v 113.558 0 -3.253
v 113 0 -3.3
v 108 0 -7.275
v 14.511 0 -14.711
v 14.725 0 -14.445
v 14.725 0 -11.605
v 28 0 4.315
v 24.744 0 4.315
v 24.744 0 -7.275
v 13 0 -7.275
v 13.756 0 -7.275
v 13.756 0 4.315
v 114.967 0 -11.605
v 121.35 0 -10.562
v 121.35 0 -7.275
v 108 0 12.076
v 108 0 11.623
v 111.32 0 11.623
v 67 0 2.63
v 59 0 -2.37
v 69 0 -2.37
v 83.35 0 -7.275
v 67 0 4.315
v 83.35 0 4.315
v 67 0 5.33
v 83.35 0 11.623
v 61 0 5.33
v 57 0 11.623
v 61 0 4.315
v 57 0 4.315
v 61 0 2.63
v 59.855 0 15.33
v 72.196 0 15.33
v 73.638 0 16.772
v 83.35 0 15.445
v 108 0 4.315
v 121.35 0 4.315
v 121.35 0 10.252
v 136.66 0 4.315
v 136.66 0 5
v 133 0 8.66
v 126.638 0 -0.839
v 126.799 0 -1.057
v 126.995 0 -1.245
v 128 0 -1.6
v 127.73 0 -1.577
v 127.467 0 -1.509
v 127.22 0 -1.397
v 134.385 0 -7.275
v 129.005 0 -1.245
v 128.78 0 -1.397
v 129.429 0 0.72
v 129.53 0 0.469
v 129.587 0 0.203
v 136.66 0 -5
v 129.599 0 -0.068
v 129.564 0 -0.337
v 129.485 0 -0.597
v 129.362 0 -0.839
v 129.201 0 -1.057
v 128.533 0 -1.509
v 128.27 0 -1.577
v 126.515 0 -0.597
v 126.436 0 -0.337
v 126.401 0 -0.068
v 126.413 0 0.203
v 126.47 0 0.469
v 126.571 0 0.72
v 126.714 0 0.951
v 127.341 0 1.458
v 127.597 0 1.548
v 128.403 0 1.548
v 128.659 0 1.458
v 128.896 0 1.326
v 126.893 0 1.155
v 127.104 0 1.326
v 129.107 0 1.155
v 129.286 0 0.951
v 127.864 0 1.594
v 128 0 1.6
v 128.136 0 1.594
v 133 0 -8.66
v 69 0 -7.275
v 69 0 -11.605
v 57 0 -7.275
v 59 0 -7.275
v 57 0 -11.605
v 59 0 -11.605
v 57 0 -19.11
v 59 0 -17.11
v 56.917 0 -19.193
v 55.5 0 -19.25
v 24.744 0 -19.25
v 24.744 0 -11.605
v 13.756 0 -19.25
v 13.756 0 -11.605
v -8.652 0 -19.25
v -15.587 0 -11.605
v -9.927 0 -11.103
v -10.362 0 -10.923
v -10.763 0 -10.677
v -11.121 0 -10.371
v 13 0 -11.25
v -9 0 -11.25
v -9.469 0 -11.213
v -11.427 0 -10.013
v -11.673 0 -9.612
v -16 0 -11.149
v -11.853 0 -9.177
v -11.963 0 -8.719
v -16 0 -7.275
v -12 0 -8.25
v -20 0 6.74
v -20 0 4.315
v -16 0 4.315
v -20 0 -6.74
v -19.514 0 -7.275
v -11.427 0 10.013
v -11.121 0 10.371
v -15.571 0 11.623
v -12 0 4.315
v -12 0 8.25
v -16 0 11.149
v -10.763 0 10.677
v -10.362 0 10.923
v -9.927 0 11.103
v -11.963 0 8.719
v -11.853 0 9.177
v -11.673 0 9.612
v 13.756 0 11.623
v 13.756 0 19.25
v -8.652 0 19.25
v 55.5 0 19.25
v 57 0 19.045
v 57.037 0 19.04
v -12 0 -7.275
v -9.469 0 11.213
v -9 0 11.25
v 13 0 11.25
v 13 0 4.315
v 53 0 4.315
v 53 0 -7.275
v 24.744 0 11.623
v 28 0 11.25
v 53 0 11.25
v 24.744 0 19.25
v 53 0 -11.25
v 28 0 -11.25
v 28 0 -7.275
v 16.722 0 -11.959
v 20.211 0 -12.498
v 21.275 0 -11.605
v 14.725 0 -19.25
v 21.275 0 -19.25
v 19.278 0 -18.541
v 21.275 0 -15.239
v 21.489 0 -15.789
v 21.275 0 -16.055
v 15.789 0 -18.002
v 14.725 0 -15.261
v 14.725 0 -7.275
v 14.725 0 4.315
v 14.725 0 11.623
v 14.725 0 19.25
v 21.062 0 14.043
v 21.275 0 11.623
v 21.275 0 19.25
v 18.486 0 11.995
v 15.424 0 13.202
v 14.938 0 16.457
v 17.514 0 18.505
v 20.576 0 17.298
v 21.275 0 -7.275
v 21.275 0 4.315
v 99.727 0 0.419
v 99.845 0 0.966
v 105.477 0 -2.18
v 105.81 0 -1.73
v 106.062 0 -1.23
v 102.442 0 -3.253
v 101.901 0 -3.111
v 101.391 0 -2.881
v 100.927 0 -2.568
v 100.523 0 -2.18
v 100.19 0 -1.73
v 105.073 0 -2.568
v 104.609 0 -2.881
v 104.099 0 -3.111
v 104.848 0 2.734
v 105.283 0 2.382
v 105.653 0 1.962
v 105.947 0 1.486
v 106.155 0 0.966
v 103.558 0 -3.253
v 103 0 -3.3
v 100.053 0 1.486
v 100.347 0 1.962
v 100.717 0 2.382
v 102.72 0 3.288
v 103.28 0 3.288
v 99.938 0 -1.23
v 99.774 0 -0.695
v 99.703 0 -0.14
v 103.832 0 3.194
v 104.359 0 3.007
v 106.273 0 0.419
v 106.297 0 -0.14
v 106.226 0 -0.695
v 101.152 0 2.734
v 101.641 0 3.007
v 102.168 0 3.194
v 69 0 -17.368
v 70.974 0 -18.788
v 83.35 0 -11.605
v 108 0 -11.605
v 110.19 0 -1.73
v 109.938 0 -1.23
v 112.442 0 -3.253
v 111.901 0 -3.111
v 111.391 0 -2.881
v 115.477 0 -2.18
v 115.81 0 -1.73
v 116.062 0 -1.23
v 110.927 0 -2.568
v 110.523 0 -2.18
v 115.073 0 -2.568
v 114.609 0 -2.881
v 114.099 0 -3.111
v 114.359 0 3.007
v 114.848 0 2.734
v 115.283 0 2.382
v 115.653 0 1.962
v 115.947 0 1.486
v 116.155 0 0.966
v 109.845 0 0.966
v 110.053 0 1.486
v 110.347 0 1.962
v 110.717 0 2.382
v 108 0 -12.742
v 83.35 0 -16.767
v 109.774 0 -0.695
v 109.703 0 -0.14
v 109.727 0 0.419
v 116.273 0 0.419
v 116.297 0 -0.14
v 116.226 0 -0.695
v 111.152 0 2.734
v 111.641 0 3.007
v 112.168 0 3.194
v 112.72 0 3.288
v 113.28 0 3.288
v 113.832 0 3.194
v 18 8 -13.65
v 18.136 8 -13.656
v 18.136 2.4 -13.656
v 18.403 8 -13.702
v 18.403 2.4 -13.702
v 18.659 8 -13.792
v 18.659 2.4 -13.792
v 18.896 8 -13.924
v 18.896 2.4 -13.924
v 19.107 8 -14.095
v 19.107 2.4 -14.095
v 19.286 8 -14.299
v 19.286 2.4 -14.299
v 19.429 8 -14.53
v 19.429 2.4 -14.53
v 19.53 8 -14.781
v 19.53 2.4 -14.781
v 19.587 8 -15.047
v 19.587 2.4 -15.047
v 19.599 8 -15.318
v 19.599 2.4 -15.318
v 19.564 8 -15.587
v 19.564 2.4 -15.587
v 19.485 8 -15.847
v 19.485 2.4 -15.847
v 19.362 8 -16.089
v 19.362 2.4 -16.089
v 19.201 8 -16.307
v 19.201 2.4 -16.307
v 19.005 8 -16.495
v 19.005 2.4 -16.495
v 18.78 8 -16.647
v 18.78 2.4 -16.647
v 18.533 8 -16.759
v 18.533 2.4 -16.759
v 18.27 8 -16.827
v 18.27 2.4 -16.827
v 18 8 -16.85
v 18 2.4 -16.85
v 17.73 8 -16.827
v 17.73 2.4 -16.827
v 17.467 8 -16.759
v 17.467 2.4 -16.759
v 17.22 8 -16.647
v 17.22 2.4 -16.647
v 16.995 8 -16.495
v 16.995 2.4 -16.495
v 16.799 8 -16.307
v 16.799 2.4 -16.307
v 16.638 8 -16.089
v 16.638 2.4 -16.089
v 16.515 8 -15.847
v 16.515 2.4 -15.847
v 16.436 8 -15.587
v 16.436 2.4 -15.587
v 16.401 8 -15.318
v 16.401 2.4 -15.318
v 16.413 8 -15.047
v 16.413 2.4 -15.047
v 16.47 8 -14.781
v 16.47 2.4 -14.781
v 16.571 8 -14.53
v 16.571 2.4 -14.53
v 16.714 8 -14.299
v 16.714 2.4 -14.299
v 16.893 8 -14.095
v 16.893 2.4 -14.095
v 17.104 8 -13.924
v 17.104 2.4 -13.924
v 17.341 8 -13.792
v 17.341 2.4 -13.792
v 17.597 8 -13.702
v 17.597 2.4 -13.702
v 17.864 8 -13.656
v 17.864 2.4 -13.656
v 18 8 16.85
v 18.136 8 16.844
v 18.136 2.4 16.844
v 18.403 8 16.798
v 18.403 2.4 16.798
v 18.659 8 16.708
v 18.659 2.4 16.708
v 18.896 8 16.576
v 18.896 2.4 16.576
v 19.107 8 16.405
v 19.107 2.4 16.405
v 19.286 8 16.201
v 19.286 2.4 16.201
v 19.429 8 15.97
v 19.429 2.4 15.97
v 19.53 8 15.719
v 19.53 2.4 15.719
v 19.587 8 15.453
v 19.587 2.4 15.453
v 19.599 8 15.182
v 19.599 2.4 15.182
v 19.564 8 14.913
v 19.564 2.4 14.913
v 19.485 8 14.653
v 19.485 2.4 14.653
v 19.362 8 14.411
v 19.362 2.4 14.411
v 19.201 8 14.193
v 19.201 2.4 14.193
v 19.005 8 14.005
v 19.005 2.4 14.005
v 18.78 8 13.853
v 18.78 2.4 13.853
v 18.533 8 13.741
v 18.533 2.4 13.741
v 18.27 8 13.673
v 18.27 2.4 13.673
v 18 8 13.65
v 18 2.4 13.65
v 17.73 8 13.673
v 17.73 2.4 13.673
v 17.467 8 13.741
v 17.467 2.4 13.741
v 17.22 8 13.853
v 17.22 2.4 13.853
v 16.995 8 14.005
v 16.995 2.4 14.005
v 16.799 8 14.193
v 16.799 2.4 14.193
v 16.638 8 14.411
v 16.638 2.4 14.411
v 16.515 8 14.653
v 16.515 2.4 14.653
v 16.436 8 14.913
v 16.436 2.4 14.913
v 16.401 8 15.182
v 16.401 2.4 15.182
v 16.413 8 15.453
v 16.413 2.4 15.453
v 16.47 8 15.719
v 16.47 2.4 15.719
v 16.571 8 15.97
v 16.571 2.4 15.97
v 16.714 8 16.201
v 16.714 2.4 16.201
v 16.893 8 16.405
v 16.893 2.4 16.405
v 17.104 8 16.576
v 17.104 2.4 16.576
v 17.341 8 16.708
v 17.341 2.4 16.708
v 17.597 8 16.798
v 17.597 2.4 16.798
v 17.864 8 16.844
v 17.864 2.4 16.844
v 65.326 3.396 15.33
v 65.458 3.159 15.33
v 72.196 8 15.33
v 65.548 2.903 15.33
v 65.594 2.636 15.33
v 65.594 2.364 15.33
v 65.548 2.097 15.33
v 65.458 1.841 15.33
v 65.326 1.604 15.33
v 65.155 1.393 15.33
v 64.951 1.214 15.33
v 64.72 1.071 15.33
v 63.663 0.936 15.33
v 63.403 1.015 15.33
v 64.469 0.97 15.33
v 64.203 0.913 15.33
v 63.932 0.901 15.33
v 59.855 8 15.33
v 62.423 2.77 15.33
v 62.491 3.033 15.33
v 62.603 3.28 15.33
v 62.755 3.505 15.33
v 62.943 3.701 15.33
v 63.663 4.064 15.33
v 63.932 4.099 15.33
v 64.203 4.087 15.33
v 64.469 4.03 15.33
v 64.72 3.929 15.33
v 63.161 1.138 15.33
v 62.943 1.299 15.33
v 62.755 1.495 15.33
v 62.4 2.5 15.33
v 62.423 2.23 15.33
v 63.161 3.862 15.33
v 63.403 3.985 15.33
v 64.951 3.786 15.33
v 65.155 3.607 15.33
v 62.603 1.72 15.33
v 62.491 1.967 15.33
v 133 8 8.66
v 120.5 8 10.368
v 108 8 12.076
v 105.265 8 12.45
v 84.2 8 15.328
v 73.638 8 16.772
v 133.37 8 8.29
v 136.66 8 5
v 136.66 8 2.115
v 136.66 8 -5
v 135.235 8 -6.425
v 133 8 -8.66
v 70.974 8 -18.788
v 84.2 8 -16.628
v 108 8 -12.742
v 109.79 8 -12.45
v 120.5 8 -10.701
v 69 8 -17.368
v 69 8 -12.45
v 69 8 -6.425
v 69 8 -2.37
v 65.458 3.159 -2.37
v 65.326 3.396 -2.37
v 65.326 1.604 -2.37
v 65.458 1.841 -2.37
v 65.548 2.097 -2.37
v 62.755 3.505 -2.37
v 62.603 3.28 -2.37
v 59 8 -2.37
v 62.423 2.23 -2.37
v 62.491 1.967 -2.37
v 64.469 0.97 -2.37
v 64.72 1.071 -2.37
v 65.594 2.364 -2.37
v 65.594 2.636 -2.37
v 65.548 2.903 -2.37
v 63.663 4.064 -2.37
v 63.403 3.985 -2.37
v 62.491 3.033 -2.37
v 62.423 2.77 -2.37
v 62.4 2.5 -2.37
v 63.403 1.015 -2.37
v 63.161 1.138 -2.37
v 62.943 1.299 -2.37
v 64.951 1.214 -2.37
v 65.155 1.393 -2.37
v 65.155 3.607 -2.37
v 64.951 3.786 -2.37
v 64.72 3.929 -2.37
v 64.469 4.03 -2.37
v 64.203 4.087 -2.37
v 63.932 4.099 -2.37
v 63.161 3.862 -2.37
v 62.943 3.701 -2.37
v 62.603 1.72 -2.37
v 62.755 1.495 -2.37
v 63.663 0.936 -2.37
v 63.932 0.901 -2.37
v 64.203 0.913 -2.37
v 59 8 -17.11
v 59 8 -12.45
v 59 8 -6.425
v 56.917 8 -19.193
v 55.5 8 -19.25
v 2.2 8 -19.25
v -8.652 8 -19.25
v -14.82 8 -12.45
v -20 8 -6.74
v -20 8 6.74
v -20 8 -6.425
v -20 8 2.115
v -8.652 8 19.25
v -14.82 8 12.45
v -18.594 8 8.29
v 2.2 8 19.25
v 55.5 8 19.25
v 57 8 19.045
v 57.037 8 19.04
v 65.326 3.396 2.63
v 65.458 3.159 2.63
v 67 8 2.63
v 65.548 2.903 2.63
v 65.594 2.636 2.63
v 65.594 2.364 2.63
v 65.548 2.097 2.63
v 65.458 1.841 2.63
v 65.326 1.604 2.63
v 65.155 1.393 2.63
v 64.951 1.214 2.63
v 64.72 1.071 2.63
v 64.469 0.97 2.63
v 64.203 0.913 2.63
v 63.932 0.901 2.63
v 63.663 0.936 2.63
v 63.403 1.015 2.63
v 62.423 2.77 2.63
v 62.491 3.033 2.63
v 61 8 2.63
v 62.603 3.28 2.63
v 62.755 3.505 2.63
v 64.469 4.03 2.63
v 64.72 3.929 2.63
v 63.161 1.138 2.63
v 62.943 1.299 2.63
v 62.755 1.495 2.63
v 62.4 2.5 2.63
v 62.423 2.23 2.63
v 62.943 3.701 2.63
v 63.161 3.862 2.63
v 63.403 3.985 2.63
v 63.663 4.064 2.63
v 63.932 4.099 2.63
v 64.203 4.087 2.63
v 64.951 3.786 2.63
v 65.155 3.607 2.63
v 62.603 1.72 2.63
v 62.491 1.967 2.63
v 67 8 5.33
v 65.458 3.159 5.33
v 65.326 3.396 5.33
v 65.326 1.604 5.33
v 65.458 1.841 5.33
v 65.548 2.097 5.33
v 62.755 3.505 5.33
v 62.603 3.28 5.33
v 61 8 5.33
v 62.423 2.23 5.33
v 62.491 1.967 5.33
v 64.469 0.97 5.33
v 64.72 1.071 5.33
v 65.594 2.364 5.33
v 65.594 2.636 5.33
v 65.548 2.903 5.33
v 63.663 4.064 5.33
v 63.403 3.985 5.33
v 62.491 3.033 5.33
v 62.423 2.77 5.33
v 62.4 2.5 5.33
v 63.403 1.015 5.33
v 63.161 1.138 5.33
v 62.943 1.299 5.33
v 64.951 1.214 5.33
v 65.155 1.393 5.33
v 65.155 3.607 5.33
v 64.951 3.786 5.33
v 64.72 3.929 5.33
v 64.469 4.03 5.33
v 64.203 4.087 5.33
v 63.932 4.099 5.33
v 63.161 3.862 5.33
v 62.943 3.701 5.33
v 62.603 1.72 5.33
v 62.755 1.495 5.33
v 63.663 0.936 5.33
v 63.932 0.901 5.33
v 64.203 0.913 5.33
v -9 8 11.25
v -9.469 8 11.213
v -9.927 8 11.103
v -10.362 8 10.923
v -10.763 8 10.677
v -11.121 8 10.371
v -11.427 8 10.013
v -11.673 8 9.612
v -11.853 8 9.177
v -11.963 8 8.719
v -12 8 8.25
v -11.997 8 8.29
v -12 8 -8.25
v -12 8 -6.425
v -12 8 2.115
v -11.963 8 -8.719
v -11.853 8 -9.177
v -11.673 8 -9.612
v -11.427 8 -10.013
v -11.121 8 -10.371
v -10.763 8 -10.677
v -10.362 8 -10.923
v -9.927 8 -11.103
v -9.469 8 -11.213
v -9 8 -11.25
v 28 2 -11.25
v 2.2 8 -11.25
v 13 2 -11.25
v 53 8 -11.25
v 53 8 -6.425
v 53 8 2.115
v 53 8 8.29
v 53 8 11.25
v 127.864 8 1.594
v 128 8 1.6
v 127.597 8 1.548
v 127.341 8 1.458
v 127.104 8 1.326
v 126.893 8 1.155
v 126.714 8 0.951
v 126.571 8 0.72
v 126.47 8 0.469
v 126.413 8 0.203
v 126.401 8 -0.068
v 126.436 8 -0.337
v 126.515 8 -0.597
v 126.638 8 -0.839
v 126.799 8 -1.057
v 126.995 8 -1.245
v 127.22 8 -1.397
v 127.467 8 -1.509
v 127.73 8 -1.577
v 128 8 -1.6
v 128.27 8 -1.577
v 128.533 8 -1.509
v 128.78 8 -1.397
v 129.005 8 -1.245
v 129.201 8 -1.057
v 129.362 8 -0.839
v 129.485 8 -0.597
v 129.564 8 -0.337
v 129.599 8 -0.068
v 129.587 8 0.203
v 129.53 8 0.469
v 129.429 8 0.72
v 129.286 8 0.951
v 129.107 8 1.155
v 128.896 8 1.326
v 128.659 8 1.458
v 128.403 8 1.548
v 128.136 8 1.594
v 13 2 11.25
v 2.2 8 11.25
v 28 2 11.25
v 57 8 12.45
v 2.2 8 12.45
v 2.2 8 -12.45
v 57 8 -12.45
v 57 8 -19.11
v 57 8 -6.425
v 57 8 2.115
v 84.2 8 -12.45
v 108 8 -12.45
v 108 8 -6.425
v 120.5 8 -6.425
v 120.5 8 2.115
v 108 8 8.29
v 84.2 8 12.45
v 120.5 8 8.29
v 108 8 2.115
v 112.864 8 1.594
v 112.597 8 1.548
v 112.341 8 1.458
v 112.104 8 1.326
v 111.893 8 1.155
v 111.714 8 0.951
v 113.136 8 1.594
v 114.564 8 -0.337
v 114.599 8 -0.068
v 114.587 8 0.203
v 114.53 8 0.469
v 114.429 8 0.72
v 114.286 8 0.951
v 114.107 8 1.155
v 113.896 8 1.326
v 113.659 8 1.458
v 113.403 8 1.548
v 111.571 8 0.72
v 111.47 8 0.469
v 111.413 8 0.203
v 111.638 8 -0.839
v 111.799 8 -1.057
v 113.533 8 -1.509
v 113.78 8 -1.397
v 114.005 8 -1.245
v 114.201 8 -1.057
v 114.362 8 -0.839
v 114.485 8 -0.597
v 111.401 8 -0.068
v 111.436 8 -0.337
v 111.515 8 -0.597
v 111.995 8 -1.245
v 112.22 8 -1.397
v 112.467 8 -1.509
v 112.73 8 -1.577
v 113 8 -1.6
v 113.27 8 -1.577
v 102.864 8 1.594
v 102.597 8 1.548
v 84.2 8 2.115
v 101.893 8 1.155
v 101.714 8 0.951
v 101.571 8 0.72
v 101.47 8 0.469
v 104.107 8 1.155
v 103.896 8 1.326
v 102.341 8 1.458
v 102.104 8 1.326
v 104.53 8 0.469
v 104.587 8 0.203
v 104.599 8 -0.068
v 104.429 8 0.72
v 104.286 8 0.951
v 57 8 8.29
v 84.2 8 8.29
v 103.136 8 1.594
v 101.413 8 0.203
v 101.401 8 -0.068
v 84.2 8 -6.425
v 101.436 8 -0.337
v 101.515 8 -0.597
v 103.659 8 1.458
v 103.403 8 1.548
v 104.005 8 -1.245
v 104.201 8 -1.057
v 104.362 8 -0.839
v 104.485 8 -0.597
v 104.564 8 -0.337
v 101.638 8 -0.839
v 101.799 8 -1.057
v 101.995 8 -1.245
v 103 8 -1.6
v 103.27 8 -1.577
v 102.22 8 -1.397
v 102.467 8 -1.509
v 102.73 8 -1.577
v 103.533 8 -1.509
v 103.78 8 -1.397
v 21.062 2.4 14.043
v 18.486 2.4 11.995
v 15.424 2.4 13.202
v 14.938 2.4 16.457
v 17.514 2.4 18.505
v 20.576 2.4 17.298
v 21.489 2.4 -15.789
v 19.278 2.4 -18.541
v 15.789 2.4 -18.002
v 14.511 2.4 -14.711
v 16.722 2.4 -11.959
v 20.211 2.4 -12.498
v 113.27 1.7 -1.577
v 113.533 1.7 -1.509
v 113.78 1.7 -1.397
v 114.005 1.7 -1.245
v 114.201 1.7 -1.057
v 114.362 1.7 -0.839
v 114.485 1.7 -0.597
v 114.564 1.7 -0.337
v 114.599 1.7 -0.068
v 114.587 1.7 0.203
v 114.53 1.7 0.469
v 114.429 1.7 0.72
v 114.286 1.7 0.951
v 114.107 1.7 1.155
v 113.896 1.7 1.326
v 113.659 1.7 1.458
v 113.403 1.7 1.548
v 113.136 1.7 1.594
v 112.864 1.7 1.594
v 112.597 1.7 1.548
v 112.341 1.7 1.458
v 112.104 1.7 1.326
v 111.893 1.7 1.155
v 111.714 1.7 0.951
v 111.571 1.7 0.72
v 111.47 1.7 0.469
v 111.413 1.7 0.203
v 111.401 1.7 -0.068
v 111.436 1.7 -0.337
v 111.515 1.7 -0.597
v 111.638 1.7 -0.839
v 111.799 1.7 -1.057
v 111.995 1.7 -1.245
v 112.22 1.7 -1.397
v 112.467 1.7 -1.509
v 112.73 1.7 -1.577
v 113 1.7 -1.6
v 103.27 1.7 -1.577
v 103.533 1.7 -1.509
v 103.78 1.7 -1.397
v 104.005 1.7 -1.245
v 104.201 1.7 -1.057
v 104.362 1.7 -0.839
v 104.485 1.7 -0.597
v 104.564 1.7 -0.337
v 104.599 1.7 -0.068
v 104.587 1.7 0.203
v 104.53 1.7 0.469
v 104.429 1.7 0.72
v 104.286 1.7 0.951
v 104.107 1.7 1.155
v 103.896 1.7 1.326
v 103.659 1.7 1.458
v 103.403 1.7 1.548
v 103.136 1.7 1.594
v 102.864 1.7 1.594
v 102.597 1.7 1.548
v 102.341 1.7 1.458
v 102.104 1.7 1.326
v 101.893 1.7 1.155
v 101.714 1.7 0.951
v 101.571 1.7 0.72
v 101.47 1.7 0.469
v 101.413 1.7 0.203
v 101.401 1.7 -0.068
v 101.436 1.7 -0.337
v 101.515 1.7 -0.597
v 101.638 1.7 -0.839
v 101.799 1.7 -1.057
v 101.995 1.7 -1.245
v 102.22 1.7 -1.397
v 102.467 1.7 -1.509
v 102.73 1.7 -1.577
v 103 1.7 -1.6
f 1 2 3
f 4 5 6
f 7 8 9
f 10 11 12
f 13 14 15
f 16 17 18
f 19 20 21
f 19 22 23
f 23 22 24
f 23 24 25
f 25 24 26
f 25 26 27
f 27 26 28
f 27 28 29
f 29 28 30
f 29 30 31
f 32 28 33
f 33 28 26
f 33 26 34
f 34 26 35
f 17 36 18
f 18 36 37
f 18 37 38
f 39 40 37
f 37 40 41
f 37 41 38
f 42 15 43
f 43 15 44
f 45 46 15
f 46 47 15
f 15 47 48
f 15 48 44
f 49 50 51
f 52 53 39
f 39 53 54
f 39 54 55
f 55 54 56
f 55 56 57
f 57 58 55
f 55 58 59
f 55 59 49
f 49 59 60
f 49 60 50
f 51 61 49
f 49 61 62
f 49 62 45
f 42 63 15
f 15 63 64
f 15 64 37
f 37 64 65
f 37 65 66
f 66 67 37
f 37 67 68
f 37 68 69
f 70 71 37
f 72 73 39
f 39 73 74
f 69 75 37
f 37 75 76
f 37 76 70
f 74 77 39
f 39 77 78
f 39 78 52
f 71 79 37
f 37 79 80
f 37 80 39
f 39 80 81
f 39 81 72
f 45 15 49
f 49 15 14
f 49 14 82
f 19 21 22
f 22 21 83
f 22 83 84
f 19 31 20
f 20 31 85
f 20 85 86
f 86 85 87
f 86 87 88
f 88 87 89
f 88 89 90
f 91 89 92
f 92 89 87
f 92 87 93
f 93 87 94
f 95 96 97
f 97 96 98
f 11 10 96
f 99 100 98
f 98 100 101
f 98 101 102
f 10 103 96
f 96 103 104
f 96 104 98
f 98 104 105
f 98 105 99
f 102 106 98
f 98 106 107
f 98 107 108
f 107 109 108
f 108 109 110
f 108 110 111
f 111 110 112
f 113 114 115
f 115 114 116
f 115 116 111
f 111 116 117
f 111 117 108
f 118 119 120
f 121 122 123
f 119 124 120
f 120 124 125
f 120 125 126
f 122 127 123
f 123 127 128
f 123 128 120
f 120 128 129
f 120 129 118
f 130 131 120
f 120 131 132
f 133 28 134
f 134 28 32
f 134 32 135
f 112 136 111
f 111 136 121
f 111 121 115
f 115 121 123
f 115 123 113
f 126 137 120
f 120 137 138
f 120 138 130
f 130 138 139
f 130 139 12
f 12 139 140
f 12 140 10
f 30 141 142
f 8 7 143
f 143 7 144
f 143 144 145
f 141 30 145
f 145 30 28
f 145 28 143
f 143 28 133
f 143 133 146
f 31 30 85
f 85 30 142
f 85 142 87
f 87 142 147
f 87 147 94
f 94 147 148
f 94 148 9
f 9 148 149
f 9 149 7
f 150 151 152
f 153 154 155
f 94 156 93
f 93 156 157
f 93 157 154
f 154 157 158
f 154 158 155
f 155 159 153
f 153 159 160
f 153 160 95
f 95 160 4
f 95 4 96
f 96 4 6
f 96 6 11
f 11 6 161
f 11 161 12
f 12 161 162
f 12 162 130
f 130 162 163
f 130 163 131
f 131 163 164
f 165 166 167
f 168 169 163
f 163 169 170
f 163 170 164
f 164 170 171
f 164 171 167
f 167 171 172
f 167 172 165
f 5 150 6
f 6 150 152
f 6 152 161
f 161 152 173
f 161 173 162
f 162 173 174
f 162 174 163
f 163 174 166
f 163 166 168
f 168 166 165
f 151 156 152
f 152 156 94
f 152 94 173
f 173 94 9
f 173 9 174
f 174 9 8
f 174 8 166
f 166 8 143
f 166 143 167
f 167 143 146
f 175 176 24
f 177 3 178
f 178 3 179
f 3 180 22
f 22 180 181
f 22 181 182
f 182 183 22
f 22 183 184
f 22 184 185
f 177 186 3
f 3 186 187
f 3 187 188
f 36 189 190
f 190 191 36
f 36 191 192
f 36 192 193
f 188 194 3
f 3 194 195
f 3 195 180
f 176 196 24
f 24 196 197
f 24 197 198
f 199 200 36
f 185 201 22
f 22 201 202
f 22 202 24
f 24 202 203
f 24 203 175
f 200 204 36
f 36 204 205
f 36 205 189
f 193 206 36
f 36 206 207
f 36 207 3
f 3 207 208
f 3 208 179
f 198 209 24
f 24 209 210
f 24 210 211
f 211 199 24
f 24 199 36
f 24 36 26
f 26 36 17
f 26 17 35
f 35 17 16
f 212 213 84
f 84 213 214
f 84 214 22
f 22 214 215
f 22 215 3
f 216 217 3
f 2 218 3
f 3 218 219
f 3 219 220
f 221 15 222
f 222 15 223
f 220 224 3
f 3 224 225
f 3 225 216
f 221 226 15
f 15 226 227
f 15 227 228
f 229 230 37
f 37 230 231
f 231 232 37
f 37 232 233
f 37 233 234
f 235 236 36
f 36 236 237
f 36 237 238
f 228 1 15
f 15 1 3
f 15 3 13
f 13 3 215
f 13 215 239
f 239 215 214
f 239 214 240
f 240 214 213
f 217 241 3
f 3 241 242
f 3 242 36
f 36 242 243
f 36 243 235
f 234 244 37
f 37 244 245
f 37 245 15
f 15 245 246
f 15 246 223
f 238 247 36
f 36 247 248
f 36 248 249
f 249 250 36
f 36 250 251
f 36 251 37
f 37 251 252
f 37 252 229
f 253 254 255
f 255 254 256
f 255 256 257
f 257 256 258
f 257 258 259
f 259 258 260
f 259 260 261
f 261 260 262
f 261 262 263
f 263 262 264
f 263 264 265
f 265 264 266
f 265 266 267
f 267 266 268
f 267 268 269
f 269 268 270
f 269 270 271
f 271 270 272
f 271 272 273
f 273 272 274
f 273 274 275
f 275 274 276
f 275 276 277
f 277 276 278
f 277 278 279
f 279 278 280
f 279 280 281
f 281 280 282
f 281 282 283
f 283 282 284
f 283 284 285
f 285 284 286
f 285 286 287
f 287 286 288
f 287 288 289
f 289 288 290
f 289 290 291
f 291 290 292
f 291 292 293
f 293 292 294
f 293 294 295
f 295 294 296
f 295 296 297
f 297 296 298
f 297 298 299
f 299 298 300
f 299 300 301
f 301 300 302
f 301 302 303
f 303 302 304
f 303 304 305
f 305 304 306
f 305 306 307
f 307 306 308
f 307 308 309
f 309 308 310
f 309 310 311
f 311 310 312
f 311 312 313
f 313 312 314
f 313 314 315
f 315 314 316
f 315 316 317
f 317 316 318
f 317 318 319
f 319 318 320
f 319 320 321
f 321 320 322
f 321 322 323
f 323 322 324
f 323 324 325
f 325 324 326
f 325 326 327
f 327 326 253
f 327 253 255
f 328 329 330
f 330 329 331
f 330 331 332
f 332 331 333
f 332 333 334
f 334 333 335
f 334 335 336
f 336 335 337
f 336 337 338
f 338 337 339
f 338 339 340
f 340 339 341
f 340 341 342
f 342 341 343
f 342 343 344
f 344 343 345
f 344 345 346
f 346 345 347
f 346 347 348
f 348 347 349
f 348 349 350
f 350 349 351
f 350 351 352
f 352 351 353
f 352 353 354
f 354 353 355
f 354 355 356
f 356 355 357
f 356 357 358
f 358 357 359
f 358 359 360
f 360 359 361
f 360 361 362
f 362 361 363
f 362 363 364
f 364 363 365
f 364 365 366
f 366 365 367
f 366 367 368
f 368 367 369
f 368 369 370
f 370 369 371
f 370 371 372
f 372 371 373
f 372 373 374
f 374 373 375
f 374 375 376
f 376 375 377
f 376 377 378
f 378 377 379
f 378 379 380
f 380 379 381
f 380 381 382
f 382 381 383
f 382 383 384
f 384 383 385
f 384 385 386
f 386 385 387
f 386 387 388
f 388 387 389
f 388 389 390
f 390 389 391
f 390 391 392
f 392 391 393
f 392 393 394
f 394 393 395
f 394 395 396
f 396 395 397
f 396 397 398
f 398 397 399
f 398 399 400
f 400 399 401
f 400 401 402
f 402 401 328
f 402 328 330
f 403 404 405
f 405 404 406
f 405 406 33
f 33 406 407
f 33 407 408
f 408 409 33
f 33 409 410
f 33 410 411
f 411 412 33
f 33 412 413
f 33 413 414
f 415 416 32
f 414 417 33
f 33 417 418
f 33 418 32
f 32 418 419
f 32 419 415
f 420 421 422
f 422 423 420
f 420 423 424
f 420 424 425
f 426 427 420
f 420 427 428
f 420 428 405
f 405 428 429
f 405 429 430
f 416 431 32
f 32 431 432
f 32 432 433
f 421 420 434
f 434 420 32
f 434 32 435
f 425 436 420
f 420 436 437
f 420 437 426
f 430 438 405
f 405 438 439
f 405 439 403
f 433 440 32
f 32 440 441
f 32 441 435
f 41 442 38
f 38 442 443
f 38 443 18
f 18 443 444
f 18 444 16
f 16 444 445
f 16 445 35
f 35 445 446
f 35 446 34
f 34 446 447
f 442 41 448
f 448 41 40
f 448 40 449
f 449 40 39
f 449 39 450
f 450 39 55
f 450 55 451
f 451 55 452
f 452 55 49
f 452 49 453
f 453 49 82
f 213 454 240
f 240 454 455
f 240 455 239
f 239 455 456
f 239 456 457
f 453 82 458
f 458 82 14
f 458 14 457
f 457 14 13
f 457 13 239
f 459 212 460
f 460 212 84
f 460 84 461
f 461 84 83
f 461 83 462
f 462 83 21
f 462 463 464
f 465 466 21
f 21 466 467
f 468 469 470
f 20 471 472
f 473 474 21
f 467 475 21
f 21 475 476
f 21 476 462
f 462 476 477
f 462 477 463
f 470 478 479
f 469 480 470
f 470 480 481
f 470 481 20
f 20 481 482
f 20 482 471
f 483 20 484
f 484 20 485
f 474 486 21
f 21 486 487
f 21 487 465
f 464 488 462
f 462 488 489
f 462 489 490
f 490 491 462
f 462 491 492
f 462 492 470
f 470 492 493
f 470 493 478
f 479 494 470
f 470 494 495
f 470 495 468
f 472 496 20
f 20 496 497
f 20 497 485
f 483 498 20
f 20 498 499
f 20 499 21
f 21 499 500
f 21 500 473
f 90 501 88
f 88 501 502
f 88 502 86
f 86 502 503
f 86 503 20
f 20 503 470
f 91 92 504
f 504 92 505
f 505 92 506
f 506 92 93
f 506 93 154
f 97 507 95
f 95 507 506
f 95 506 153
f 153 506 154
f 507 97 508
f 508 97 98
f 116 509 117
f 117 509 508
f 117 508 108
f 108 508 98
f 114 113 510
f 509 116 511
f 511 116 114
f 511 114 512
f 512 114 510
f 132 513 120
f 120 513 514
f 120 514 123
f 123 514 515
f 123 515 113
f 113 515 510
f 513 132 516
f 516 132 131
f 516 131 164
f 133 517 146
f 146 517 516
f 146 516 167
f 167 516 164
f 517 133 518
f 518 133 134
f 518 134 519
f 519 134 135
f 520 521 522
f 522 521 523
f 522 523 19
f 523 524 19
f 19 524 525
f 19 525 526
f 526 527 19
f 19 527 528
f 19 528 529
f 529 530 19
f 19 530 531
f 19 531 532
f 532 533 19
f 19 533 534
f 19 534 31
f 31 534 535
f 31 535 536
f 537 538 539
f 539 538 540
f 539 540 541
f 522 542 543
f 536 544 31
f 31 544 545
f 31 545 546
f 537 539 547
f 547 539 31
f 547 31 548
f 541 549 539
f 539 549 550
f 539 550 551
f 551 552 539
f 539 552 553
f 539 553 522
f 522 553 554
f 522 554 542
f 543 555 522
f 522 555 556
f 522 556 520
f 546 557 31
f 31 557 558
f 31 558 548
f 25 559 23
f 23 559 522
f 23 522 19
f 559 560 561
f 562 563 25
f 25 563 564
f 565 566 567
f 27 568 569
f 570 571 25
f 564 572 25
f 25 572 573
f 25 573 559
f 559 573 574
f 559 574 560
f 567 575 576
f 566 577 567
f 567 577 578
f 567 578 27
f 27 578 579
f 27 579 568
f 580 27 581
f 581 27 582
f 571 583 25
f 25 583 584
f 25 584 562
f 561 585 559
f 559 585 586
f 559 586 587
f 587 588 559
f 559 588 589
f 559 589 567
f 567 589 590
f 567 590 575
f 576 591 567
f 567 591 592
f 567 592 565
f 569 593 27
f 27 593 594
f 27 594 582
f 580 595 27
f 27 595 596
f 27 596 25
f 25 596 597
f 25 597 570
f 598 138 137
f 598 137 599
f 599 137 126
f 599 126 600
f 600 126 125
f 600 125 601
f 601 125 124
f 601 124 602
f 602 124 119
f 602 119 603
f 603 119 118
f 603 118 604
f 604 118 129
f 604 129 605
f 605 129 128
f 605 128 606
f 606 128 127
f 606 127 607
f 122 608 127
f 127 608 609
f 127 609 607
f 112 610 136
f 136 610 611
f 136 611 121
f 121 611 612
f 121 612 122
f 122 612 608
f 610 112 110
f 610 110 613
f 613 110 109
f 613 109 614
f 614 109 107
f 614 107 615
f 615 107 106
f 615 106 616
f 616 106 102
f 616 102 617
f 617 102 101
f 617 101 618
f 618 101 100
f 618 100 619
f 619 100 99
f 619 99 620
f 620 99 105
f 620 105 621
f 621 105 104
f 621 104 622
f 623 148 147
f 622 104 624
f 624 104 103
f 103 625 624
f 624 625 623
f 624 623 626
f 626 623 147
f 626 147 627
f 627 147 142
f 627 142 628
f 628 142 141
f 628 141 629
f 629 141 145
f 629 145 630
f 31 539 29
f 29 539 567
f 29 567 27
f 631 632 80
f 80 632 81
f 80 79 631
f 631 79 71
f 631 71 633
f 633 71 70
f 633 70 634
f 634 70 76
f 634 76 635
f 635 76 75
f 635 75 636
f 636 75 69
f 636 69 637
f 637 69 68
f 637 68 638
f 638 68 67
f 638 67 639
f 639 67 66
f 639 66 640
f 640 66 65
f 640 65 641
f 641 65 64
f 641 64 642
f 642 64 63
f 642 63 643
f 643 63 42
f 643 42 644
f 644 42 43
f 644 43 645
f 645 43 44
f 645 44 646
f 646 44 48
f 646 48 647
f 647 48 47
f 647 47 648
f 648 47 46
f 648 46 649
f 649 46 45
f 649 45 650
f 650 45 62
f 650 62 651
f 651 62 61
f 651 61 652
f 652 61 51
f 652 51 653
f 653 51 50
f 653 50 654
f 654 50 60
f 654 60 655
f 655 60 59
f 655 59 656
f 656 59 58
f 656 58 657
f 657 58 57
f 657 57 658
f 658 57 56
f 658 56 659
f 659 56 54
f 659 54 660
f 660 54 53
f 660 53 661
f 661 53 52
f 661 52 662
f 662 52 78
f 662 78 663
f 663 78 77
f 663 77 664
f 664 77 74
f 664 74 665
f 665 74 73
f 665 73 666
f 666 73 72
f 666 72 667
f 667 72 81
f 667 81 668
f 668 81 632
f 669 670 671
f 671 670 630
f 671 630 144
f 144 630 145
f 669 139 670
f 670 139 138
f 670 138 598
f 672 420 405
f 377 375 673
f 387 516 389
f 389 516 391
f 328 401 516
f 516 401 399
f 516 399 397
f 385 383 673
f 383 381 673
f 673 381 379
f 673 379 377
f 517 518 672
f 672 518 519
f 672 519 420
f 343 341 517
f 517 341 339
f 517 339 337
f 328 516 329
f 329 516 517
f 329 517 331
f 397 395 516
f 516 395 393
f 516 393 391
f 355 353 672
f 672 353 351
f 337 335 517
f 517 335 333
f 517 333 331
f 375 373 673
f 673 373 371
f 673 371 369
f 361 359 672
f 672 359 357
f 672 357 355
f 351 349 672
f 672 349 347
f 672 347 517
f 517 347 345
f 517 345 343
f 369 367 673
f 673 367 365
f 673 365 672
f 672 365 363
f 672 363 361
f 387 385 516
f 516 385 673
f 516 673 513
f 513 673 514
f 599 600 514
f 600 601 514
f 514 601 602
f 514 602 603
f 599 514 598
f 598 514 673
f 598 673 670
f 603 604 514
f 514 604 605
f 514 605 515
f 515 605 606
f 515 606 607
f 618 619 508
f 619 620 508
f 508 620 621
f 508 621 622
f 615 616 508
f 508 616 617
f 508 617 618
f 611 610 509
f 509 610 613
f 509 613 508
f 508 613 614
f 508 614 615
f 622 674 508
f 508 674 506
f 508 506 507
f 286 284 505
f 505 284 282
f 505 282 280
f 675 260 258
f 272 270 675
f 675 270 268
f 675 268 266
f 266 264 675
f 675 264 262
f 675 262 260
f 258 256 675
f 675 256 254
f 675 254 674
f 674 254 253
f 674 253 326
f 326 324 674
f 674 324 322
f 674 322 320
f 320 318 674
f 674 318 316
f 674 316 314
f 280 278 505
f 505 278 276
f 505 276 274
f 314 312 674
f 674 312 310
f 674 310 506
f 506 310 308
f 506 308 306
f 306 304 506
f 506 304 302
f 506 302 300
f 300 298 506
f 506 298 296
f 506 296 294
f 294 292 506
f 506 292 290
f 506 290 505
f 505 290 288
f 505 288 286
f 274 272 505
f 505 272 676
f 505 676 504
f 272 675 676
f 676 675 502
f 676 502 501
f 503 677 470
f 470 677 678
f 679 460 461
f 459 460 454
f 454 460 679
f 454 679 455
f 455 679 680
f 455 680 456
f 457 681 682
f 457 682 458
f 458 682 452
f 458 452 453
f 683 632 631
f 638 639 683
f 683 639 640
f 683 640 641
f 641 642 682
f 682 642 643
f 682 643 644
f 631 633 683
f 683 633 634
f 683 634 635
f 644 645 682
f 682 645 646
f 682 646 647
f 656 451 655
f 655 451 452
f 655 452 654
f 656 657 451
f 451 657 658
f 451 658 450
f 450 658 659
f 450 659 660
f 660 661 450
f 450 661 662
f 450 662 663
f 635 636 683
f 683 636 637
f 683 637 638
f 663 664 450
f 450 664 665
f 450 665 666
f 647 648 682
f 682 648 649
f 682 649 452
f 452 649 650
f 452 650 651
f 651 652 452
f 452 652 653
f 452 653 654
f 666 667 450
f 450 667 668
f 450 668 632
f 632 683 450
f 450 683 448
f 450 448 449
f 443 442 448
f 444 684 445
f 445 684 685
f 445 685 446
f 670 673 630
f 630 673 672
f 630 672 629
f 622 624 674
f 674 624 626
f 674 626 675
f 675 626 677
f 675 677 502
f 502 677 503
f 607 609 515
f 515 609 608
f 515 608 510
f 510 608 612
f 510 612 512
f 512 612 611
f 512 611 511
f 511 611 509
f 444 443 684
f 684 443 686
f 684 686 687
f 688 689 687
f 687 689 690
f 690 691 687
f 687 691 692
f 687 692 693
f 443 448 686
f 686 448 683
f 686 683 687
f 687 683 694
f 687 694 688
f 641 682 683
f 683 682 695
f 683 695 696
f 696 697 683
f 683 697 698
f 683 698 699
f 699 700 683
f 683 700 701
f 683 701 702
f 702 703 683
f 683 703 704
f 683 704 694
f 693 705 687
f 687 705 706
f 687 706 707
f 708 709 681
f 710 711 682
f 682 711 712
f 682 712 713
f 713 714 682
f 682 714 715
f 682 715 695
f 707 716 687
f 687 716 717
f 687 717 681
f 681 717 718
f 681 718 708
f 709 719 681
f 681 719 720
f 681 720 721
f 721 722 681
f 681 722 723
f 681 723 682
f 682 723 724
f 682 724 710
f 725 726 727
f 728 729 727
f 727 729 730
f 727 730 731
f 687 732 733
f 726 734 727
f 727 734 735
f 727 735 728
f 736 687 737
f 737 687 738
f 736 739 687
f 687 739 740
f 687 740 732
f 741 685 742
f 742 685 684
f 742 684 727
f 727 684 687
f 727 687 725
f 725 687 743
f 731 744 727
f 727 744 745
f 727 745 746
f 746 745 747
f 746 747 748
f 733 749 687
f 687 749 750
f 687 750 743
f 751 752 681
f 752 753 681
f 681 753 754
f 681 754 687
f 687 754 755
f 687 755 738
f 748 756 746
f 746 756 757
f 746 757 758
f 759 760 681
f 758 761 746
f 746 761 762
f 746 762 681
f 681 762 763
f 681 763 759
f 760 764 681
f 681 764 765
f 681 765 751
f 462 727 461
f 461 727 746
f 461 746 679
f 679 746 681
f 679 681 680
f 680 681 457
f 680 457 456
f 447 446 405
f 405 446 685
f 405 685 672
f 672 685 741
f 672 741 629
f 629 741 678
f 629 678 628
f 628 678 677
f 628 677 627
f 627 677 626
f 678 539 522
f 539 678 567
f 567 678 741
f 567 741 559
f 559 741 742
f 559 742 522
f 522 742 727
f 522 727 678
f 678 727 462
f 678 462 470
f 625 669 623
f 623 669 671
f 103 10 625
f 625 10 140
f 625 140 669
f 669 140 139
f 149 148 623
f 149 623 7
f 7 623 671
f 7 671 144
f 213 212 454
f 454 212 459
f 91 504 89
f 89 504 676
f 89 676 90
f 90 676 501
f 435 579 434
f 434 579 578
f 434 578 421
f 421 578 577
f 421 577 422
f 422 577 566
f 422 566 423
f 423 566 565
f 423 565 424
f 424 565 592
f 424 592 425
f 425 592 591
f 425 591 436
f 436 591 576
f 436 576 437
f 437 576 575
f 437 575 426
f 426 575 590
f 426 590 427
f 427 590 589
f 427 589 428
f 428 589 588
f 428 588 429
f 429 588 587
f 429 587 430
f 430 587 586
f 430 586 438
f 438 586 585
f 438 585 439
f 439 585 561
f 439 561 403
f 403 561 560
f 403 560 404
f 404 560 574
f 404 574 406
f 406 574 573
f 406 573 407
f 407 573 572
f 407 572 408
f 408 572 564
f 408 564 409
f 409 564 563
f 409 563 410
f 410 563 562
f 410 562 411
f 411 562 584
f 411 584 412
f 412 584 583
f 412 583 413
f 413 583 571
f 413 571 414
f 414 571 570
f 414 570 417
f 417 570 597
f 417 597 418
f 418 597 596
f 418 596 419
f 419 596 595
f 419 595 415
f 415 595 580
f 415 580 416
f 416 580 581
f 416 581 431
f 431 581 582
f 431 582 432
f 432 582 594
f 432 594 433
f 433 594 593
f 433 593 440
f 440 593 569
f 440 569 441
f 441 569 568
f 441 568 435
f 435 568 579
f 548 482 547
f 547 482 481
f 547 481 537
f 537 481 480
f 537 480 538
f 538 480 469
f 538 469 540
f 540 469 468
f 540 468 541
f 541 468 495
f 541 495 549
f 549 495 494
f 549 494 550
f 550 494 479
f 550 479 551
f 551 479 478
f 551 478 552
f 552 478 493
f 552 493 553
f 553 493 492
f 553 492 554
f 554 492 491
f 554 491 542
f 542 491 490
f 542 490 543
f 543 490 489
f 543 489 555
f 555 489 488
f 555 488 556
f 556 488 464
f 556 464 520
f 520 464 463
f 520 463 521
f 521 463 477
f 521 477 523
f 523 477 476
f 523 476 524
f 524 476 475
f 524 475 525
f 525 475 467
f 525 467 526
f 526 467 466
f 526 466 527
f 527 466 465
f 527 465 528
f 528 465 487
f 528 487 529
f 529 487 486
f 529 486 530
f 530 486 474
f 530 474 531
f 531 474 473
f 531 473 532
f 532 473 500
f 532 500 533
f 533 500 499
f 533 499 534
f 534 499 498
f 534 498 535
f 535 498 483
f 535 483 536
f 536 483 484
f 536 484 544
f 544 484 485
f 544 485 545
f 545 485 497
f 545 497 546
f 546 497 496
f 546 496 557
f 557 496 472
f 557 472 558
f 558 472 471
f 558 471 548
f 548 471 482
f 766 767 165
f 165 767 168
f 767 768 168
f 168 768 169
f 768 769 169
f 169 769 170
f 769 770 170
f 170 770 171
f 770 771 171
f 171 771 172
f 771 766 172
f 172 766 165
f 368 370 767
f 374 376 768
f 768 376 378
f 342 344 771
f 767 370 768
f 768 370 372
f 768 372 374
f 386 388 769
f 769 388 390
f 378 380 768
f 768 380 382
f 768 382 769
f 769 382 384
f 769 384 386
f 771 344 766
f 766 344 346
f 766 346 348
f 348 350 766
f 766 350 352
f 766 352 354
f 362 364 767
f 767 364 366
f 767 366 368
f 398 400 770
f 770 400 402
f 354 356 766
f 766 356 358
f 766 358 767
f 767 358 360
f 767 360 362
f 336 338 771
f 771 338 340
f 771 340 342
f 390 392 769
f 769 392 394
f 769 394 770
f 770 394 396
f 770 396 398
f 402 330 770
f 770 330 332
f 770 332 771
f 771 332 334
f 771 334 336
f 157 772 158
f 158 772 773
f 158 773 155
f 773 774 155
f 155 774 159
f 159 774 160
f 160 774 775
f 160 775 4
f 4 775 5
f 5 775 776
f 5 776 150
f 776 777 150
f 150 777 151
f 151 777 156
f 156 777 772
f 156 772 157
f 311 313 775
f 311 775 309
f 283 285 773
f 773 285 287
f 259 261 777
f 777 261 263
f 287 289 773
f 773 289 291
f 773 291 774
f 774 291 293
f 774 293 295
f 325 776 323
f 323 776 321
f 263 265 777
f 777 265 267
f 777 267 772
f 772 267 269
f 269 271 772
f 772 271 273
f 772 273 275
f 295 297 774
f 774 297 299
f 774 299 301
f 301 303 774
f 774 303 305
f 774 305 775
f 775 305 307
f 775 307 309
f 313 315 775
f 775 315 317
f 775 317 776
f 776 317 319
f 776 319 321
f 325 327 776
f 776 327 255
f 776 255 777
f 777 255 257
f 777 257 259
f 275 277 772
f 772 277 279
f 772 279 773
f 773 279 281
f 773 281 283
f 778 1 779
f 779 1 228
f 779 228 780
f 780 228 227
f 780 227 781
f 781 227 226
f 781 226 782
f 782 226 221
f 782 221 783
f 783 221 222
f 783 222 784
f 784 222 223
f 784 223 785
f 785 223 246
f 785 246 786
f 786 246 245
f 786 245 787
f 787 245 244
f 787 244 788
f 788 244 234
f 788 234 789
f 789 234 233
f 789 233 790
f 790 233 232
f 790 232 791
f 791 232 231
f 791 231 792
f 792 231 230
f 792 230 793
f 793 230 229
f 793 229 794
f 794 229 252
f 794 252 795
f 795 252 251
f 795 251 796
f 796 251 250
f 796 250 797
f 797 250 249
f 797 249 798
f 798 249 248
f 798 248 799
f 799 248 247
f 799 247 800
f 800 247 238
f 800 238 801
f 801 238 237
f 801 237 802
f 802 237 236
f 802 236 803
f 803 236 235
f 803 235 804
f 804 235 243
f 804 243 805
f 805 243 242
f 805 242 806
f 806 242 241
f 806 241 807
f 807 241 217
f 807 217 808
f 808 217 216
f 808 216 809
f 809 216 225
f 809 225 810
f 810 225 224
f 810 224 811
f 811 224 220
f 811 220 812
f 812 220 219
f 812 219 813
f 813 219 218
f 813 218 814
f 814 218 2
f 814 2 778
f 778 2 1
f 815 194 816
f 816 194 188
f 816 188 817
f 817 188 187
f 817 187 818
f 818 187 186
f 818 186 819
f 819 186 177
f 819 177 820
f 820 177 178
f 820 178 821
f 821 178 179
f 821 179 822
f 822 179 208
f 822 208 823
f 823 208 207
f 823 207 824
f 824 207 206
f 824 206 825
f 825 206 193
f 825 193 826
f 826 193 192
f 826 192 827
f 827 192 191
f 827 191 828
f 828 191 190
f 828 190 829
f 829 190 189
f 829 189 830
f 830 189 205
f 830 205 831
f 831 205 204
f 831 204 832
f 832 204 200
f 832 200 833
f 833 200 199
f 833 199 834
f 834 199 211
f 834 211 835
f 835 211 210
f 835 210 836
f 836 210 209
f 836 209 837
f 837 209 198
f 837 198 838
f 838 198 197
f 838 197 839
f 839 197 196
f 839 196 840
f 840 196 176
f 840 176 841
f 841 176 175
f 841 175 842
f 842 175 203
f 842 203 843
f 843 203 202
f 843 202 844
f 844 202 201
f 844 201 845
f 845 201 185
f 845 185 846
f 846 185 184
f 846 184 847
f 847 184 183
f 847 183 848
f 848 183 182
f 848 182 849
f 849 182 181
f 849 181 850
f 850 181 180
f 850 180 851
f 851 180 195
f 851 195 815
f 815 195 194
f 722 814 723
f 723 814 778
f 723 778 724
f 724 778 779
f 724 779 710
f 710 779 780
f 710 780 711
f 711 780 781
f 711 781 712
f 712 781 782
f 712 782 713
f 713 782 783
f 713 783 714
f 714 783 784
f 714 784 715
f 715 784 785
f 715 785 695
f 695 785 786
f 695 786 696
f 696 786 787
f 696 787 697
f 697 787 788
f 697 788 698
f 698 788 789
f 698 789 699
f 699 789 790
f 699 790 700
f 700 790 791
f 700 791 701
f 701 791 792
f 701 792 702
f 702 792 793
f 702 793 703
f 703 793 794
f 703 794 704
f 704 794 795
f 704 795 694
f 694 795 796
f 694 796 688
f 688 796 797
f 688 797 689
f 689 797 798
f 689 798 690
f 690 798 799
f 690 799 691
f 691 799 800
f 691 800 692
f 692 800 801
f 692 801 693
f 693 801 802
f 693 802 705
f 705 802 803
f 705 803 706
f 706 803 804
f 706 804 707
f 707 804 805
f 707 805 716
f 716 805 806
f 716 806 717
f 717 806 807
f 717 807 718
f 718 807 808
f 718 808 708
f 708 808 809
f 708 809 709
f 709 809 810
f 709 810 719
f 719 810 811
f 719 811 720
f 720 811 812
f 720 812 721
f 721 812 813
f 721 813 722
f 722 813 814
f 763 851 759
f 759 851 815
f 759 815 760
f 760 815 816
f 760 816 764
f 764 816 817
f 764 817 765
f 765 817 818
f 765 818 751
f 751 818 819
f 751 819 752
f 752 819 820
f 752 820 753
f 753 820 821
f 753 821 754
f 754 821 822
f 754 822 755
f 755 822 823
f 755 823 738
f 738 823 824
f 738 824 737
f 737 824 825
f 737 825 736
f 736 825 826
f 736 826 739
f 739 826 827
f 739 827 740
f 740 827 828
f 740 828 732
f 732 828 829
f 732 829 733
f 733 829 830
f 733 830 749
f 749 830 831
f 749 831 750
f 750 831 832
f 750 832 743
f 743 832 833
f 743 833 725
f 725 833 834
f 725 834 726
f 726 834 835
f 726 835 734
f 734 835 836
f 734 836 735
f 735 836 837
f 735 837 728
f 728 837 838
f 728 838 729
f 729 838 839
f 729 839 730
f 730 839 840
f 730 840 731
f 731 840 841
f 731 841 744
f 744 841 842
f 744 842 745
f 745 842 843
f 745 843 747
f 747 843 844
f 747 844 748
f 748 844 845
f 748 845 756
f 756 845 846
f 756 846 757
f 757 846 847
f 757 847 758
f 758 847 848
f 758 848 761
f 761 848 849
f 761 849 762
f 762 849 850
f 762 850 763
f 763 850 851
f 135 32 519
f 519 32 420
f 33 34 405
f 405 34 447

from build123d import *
from OCP.BRepFilletAPI import BRepFilletAPI_MakeChamfer

# Parameters (mm, degrees)
SKETCH2_R           = 1.6
SKETCH2_W           = 6
SKETCH2_H           = 2.7
BOSS_EXTRUDE1_DEPTH = 8
SKETCH4_W           = 15
SKETCH4_H           = 38.5
BOSS_EXTRUDE2_DEPTH = 2
CHAMFER2_SIZE       = 2
CHAMFER2_SIZE2      = 2.084999334
CHAMFER2_SIZE2_2    = 1.742047362
SKETCH3_R           = 1.6
CUT_EXTRUDE1_DEPTH  = 139.590988742
CUT_EXTRUDE2_DEPTH  = 2.4
LPATTERN1_COUNT     = 2
LPATTERN1_PITCH     = 10
SKETCH7_R           = 1.6
CUT_EXTRUDE3_DEPTH  = 139.241048657
CHAMFER4_SIZE       = 4.676123657
CHAMFER4_SIZE_2     = 4
CHAMFER5_SIZE       = 1.775919651
CHAMFER5_SIZE_2     = 2


with BuildPart() as part:
    # Sketch2 → Boss-Extrude1 (new body)
    with BuildSketch(Plane(origin=(0, 0, 0), x_dir=(1, 0, 0), z_dir=(0, 1, 0))):
        Polygon((-8.652082119, -19.25), (55.5, -19.25), (61, -18.498469641), (61, -15.329705671), (71.8782498, -15.329705671), (71.8782498, -17.012045101), (133, -8.660254038), (136.660254038, -5), (136.660254038, 0), (136.660254038, 5), (133, 8.660254038), (69, 19.11), (69, 2.370294329), (59, 2.370294329), (59, 19.11), (55.5, 19.25), (-8.652082119, 19.25), (-20, 6.739512223), (-20, -6.739512223), align=None)
        with Locations(Location((18, -15.25, 0), (0, 0, 270))):
            Circle(SKETCH2_R, mode=Mode.SUBTRACT)
        with BuildLine():
            ThreePointArc((-12, 8.25), (-11.121320344, 10.371320344), (-9, 11.25))
            Line((-9, 11.25), (53, 11.25))
            Line((53, 11.25), (53, -11.25))
            Line((53, -11.25), (-9, -11.25))
            ThreePointArc((-9, -11.25), (-11.121320344, -10.371320344), (-12, -8.25))
            Line((-12, -8.25), (-12, 8.25))
        make_face(mode=Mode.SUBTRACT)
        with Locations((64, -3.979705671)):
            Rectangle(SKETCH2_W, SKETCH2_H, mode=Mode.SUBTRACT)
        with Locations(Location((128, 0, 0), (0, 0, 270))):
            Circle(SKETCH2_R, mode=Mode.SUBTRACT)
        with Locations(Location((18, 15.25, 0), (0, 0, 270))):
            Circle(SKETCH2_R, mode=Mode.SUBTRACT)
    extrude(amount=BOSS_EXTRUDE1_DEPTH)

    # Sketch4 → Boss-Extrude2 (add)
    with BuildSketch(Plane(origin=(0, 0, 0), x_dir=(-1, 0, 0), z_dir=(0, -1, 0))):
        with Locations((-20.5, 0)):
            Rectangle(SKETCH4_W, SKETCH4_H)
    extrude(amount=-BOSS_EXTRUDE2_DEPTH)

    # Chamfer2: one chamfer whose edges measure the first distance from different faces: ONE call of the kernel's chamfer builder (chamfer() names one face for all edges)
    chamfer2_edges_1 = [part.edges().sort_by_distance(p)[0] for p in [
        (59, 4, -19.11),
    ]]
    chamfer2_side_1 = [part.faces().sort_by_distance(p)[0] for p in [
        (59, 4, -10.740147164),
    ]]
    chamfer2_edges_2 = [part.edges().sort_by_distance(p)[0] for p in [
        (69, 4, -19.11),
    ]]
    chamfer2_side_2 = [part.faces().sort_by_distance(p)[0] for p in [
        (101, 4, -13.885127019),
    ]]
    chamfer2 = BRepFilletAPI_MakeChamfer(part.part.solid().wrapped)
    for e in chamfer2_edges_1:
        chamfer2.Add(CHAMFER2_SIZE, CHAMFER2_SIZE2, e.wrapped, chamfer2_side_1[0].wrapped)  # the first distance lies on this face
    for e in chamfer2_edges_2:
        chamfer2.Add(CHAMFER2_SIZE, CHAMFER2_SIZE2_2, e.wrapped, chamfer2_side_2[0].wrapped)  # the first distance lies on this face
    add(Compound.cast(chamfer2.Shape()), mode=Mode.REPLACE)

    # Sketch3 → Cut-Extrude1 (cut, through all)
    with BuildSketch(Plane(origin=(0, 0, -2.370294329), x_dir=(-1, 0, 0), z_dir=(0, 0, -1))):
        with Locations((-64, 2.5)):
            Circle(SKETCH3_R)
    extrude(amount=-CUT_EXTRUDE1_DEPTH, mode=Mode.SUBTRACT)

    # Sketch5 → Cut-Extrude2 (cut)
    with BuildSketch(Plane.XZ):
        Polygon((21.061742947, 14.043463581), (20.575762662, 17.298278962), (17.514019716, 18.504815381), (14.938257053, 16.456536419), (15.424237338, 13.201721038), (18.485980284, 11.995184619), align=None)
        Polygon((21.488981661, -15.788699565), (20.211018339, -12.49780303), (16.722036677, -11.959103466), (14.511018339, -14.711300435), (15.788981661, -18.00219697), (19.277963323, -18.540896534), align=None)
    extrude(amount=-CUT_EXTRUDE2_DEPTH, mode=Mode.SUBTRACT)

    # Sketch6 → Cut-Revolve1 (revolve, cut)
    with BuildSketch(Plane.XY, mode=Mode.PRIVATE) as cut_revolve1_sk:
        Polygon((113, 0), (113, 3.3), (109.7, 0), align=None)
    cut_revolve1 = revolve(cut_revolve1_sk.sketch.rotate(Axis((113, 0, 0), (0, 1, 0)), 270), axis=Axis((113, 0, 0), (0, 1, 0)), mode=Mode.SUBTRACT)

    # LPattern1: Cut-Revolve1 ×2
    with Locations(*[(-i * LPATTERN1_PITCH, 0, 0) for i in range(1, LPATTERN1_COUNT)]):
        add(cut_revolve1, mode=Mode.SUBTRACT)

    # Sketch7 → Cut-Extrude3 (cut, through all)
    with BuildSketch(Plane.XZ):
        with Locations(Location((113, 0, 0), (0, 0, 270))):
            Circle(SKETCH7_R)
        with Locations(Location((103, 0, 0), (0, 0, 270))):
            Circle(SKETCH7_R)
    extrude(amount=-CUT_EXTRUDE3_DEPTH, mode=Mode.SUBTRACT)

    # Chamfer4
    # the kernel refuses this chamfer: 4.676123657, 4 mm, written as the material it takes off along each edge
    with BuildSketch(Plane(origin=(61, -12.065997261, 18.498469641), x_dir=(0.023441304216062758, 0, -0.9997252148748925), z_dir=(0, 1, 0))) as chamfer4_piece_1_section:
        Polygon((CHAMFER4_SIZE * 0.999725214943, CHAMFER4_SIZE * 0.0234413042177), (-CHAMFER4_SIZE_2 * 0.158572136068, CHAMFER4_SIZE_2 * 0.98734739462), (0, 0), align=None)
    chamfer4_piece_1 = extrude(amount=32.131994523, mode=Mode.PRIVATE)
    chamfer4_piece_1 = split(chamfer4_piece_1, bisect_by=Plane(origin=(59.577955858, 4, 15.329705671), z_dir=(0, 0, 1)), keep=Keep.TOP, mode=Mode.PRIVATE)
    add(chamfer4_piece_1, mode=Mode.SUBTRACT)

    # Chamfer5
    # the kernel refuses this chamfer: 2, 1.775919651 mm, written as the material it takes off along each edge
    with BuildSketch(Plane(origin=(71.8782498, -5.143365976, 17.012045101), x_dir=(0.9949144836162346, 0, -0.10072323610091762), z_dir=(0, 1, 0))) as chamfer5_piece_1_section:
        Polygon((CHAMFER5_SIZE * 0.999390828495, CHAMFER5_SIZE * 0.0348994555423), (CHAMFER5_SIZE_2 * 0.100723236101, CHAMFER5_SIZE_2 * 0.994914483616), (0, 0), align=None)
    chamfer5_piece_1 = extrude(amount=18.286731952, mode=Mode.PRIVATE)
    chamfer5_piece_1 = split(chamfer5_piece_1, bisect_by=Plane(origin=(72.478635966, 4, 15.329705671), z_dir=(0, 0, 1)), keep=Keep.TOP, mode=Mode.PRIVATE)
    add(chamfer5_piece_1, mode=Mode.SUBTRACT)


solid = part.part
